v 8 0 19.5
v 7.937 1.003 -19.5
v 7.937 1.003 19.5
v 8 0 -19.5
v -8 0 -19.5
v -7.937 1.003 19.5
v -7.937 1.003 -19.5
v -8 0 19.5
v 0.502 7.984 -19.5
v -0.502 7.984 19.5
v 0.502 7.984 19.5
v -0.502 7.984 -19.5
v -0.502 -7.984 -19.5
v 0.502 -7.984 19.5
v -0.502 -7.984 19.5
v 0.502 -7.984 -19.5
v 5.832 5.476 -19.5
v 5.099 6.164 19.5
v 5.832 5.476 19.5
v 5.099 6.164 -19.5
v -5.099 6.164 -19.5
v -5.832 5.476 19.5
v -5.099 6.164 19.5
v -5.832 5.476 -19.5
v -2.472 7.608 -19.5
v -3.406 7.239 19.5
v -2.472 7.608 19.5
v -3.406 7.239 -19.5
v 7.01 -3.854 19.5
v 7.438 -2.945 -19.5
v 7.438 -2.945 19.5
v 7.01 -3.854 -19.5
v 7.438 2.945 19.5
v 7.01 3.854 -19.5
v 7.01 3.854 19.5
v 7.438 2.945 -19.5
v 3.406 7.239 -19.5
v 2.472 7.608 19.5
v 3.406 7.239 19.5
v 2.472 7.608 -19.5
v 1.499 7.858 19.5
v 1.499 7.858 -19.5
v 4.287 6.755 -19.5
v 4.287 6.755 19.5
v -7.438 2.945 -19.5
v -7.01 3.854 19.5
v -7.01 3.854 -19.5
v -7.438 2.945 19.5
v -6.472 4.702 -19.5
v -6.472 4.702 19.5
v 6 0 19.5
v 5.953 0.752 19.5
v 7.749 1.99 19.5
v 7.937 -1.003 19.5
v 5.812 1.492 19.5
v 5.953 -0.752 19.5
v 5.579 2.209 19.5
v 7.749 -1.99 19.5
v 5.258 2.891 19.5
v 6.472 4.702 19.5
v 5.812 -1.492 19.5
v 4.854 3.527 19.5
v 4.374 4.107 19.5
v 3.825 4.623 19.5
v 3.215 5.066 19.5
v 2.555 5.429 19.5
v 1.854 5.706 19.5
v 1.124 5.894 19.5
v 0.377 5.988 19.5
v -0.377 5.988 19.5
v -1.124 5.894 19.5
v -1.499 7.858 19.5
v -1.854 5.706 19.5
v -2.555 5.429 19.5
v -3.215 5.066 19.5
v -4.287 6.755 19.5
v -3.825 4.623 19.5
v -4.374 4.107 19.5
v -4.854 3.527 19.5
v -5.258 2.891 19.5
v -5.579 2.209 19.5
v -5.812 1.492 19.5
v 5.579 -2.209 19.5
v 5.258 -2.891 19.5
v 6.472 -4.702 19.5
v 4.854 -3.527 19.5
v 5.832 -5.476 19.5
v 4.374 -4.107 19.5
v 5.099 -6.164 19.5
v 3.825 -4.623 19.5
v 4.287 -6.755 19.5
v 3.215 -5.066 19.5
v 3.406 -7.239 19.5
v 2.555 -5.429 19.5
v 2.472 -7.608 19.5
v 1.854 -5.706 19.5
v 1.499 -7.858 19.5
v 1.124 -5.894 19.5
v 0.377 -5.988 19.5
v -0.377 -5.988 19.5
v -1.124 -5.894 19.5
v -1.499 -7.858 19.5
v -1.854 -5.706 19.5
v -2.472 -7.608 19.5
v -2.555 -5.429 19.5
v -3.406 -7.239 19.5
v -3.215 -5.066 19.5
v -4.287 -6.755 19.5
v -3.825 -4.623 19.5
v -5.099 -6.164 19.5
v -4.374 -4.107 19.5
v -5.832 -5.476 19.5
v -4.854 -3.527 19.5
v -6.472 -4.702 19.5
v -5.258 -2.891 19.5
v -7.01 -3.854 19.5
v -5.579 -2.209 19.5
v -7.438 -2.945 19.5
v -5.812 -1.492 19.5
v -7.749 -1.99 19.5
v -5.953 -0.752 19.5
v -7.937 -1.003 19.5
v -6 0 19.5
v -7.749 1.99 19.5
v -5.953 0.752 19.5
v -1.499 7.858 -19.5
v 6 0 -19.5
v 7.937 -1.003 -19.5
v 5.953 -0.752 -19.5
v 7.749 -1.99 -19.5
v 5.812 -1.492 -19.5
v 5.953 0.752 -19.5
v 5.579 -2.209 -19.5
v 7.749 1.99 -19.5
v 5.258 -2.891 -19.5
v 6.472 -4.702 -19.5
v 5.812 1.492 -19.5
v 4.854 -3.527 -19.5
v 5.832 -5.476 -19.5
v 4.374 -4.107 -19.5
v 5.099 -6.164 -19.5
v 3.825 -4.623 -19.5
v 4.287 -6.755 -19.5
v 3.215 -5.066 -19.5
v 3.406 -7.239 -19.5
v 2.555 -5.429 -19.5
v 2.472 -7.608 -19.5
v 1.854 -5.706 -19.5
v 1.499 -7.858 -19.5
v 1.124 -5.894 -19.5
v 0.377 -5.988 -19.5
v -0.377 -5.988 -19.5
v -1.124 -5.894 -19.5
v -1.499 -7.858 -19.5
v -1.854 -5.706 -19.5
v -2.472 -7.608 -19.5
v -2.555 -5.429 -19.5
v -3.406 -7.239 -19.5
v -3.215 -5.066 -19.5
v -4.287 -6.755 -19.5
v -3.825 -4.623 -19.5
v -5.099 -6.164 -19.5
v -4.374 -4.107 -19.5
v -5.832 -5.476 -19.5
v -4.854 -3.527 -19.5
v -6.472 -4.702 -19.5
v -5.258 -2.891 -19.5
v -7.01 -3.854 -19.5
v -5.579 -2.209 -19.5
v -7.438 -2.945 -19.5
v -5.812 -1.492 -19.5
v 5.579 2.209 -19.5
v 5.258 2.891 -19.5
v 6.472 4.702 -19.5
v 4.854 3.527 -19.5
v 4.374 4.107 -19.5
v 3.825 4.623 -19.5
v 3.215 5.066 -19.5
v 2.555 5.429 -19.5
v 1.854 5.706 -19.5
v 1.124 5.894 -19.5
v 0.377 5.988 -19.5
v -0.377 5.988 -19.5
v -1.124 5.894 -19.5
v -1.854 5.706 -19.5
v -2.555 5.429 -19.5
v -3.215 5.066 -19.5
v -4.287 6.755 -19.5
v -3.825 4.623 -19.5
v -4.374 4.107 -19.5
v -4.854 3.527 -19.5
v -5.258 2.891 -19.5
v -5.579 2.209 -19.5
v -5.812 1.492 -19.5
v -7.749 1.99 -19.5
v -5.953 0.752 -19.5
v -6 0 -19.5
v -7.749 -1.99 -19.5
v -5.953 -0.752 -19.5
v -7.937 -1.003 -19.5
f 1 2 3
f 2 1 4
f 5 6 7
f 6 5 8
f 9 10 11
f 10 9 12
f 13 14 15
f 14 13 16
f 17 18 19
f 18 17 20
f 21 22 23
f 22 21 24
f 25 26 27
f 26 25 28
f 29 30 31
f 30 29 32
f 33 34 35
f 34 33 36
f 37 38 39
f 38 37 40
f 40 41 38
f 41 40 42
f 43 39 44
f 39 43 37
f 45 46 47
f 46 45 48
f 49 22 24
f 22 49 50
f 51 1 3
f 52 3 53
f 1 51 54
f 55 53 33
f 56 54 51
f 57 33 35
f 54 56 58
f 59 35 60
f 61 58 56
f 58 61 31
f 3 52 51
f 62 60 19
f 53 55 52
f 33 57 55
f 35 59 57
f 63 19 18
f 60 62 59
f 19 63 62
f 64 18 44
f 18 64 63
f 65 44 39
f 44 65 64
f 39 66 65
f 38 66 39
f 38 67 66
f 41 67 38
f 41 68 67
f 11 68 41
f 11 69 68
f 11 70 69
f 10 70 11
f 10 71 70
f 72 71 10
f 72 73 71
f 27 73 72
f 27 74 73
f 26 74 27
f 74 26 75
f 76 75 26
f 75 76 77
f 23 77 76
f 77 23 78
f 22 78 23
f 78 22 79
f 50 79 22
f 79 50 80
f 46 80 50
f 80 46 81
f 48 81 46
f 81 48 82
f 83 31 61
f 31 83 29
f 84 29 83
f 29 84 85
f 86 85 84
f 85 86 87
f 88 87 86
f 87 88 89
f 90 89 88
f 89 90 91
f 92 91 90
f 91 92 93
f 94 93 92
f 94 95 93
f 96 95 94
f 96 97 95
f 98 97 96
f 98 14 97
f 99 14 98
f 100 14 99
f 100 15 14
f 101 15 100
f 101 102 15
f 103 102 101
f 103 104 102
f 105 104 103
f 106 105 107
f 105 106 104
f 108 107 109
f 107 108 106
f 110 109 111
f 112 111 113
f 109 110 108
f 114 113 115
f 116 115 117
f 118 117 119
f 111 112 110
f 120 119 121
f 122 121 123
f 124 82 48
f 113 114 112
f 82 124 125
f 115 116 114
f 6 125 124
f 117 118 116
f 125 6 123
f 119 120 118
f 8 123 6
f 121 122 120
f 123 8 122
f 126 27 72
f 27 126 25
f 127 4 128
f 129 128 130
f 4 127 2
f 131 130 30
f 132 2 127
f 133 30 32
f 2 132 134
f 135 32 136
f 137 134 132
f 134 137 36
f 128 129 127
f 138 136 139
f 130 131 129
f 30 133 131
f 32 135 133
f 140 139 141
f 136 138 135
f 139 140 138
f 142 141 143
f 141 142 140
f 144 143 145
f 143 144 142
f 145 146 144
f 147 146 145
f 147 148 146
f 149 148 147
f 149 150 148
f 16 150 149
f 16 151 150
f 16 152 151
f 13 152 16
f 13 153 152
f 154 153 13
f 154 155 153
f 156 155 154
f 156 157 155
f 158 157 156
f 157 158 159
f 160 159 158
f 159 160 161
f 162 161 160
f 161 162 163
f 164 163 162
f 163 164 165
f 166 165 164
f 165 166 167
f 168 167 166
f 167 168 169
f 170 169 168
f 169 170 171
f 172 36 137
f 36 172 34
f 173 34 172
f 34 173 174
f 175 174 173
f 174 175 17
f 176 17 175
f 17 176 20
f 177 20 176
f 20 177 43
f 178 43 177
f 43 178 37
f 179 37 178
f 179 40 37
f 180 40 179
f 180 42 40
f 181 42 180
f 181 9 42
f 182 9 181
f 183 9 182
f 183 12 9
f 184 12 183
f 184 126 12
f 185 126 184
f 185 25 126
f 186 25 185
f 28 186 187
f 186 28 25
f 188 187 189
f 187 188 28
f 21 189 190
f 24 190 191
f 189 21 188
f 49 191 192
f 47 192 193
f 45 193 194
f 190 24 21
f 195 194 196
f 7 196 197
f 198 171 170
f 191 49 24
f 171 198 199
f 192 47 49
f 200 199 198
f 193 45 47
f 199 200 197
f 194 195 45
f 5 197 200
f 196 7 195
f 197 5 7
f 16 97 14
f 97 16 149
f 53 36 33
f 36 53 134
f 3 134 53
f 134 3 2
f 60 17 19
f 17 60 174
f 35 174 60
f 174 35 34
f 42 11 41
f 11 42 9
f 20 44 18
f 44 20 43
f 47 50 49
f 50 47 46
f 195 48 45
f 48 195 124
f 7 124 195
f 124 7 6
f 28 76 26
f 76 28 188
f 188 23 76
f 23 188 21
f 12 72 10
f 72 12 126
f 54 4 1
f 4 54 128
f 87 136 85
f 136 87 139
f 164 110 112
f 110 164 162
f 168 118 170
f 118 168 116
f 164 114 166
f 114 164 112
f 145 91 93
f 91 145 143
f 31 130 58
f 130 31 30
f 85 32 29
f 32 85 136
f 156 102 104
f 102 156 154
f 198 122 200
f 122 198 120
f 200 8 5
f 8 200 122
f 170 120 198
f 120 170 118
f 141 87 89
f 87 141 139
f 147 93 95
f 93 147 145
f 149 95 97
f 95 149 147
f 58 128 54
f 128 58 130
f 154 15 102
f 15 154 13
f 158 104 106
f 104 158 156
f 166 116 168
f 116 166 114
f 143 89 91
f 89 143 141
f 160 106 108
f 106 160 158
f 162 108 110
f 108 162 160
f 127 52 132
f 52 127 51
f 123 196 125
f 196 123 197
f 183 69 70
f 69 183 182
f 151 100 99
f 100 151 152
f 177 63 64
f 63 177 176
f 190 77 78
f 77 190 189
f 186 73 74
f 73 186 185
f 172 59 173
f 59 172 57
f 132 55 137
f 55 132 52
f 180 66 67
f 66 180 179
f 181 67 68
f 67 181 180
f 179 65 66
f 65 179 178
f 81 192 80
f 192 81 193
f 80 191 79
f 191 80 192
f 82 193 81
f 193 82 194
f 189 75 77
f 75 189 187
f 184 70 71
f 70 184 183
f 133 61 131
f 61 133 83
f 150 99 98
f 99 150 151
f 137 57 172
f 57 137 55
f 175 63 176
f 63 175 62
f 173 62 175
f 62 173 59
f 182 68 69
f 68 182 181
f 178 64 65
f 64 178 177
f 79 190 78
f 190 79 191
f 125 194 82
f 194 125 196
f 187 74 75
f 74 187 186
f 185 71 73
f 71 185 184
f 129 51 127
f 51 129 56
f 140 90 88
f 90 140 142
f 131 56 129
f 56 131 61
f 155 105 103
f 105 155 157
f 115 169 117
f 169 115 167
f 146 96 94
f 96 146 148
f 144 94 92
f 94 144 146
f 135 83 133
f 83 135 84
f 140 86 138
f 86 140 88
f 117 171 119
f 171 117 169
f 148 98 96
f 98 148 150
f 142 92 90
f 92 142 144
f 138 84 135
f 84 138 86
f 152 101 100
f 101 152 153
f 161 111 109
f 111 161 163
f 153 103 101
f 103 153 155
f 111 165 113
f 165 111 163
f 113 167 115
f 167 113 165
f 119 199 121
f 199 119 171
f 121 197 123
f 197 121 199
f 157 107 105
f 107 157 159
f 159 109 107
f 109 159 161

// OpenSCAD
$fn = 50;


difference() {
	union() {
		translate(v = [0, 0, -19.5000000000]) {
			cylinder(h = 39, r = 8.0000000000);
		}
	}
	union() {
		translate(v = [0, 0, -100.0000000000]) {
			cylinder(h = 200, r = 6);
		}
	}
}
